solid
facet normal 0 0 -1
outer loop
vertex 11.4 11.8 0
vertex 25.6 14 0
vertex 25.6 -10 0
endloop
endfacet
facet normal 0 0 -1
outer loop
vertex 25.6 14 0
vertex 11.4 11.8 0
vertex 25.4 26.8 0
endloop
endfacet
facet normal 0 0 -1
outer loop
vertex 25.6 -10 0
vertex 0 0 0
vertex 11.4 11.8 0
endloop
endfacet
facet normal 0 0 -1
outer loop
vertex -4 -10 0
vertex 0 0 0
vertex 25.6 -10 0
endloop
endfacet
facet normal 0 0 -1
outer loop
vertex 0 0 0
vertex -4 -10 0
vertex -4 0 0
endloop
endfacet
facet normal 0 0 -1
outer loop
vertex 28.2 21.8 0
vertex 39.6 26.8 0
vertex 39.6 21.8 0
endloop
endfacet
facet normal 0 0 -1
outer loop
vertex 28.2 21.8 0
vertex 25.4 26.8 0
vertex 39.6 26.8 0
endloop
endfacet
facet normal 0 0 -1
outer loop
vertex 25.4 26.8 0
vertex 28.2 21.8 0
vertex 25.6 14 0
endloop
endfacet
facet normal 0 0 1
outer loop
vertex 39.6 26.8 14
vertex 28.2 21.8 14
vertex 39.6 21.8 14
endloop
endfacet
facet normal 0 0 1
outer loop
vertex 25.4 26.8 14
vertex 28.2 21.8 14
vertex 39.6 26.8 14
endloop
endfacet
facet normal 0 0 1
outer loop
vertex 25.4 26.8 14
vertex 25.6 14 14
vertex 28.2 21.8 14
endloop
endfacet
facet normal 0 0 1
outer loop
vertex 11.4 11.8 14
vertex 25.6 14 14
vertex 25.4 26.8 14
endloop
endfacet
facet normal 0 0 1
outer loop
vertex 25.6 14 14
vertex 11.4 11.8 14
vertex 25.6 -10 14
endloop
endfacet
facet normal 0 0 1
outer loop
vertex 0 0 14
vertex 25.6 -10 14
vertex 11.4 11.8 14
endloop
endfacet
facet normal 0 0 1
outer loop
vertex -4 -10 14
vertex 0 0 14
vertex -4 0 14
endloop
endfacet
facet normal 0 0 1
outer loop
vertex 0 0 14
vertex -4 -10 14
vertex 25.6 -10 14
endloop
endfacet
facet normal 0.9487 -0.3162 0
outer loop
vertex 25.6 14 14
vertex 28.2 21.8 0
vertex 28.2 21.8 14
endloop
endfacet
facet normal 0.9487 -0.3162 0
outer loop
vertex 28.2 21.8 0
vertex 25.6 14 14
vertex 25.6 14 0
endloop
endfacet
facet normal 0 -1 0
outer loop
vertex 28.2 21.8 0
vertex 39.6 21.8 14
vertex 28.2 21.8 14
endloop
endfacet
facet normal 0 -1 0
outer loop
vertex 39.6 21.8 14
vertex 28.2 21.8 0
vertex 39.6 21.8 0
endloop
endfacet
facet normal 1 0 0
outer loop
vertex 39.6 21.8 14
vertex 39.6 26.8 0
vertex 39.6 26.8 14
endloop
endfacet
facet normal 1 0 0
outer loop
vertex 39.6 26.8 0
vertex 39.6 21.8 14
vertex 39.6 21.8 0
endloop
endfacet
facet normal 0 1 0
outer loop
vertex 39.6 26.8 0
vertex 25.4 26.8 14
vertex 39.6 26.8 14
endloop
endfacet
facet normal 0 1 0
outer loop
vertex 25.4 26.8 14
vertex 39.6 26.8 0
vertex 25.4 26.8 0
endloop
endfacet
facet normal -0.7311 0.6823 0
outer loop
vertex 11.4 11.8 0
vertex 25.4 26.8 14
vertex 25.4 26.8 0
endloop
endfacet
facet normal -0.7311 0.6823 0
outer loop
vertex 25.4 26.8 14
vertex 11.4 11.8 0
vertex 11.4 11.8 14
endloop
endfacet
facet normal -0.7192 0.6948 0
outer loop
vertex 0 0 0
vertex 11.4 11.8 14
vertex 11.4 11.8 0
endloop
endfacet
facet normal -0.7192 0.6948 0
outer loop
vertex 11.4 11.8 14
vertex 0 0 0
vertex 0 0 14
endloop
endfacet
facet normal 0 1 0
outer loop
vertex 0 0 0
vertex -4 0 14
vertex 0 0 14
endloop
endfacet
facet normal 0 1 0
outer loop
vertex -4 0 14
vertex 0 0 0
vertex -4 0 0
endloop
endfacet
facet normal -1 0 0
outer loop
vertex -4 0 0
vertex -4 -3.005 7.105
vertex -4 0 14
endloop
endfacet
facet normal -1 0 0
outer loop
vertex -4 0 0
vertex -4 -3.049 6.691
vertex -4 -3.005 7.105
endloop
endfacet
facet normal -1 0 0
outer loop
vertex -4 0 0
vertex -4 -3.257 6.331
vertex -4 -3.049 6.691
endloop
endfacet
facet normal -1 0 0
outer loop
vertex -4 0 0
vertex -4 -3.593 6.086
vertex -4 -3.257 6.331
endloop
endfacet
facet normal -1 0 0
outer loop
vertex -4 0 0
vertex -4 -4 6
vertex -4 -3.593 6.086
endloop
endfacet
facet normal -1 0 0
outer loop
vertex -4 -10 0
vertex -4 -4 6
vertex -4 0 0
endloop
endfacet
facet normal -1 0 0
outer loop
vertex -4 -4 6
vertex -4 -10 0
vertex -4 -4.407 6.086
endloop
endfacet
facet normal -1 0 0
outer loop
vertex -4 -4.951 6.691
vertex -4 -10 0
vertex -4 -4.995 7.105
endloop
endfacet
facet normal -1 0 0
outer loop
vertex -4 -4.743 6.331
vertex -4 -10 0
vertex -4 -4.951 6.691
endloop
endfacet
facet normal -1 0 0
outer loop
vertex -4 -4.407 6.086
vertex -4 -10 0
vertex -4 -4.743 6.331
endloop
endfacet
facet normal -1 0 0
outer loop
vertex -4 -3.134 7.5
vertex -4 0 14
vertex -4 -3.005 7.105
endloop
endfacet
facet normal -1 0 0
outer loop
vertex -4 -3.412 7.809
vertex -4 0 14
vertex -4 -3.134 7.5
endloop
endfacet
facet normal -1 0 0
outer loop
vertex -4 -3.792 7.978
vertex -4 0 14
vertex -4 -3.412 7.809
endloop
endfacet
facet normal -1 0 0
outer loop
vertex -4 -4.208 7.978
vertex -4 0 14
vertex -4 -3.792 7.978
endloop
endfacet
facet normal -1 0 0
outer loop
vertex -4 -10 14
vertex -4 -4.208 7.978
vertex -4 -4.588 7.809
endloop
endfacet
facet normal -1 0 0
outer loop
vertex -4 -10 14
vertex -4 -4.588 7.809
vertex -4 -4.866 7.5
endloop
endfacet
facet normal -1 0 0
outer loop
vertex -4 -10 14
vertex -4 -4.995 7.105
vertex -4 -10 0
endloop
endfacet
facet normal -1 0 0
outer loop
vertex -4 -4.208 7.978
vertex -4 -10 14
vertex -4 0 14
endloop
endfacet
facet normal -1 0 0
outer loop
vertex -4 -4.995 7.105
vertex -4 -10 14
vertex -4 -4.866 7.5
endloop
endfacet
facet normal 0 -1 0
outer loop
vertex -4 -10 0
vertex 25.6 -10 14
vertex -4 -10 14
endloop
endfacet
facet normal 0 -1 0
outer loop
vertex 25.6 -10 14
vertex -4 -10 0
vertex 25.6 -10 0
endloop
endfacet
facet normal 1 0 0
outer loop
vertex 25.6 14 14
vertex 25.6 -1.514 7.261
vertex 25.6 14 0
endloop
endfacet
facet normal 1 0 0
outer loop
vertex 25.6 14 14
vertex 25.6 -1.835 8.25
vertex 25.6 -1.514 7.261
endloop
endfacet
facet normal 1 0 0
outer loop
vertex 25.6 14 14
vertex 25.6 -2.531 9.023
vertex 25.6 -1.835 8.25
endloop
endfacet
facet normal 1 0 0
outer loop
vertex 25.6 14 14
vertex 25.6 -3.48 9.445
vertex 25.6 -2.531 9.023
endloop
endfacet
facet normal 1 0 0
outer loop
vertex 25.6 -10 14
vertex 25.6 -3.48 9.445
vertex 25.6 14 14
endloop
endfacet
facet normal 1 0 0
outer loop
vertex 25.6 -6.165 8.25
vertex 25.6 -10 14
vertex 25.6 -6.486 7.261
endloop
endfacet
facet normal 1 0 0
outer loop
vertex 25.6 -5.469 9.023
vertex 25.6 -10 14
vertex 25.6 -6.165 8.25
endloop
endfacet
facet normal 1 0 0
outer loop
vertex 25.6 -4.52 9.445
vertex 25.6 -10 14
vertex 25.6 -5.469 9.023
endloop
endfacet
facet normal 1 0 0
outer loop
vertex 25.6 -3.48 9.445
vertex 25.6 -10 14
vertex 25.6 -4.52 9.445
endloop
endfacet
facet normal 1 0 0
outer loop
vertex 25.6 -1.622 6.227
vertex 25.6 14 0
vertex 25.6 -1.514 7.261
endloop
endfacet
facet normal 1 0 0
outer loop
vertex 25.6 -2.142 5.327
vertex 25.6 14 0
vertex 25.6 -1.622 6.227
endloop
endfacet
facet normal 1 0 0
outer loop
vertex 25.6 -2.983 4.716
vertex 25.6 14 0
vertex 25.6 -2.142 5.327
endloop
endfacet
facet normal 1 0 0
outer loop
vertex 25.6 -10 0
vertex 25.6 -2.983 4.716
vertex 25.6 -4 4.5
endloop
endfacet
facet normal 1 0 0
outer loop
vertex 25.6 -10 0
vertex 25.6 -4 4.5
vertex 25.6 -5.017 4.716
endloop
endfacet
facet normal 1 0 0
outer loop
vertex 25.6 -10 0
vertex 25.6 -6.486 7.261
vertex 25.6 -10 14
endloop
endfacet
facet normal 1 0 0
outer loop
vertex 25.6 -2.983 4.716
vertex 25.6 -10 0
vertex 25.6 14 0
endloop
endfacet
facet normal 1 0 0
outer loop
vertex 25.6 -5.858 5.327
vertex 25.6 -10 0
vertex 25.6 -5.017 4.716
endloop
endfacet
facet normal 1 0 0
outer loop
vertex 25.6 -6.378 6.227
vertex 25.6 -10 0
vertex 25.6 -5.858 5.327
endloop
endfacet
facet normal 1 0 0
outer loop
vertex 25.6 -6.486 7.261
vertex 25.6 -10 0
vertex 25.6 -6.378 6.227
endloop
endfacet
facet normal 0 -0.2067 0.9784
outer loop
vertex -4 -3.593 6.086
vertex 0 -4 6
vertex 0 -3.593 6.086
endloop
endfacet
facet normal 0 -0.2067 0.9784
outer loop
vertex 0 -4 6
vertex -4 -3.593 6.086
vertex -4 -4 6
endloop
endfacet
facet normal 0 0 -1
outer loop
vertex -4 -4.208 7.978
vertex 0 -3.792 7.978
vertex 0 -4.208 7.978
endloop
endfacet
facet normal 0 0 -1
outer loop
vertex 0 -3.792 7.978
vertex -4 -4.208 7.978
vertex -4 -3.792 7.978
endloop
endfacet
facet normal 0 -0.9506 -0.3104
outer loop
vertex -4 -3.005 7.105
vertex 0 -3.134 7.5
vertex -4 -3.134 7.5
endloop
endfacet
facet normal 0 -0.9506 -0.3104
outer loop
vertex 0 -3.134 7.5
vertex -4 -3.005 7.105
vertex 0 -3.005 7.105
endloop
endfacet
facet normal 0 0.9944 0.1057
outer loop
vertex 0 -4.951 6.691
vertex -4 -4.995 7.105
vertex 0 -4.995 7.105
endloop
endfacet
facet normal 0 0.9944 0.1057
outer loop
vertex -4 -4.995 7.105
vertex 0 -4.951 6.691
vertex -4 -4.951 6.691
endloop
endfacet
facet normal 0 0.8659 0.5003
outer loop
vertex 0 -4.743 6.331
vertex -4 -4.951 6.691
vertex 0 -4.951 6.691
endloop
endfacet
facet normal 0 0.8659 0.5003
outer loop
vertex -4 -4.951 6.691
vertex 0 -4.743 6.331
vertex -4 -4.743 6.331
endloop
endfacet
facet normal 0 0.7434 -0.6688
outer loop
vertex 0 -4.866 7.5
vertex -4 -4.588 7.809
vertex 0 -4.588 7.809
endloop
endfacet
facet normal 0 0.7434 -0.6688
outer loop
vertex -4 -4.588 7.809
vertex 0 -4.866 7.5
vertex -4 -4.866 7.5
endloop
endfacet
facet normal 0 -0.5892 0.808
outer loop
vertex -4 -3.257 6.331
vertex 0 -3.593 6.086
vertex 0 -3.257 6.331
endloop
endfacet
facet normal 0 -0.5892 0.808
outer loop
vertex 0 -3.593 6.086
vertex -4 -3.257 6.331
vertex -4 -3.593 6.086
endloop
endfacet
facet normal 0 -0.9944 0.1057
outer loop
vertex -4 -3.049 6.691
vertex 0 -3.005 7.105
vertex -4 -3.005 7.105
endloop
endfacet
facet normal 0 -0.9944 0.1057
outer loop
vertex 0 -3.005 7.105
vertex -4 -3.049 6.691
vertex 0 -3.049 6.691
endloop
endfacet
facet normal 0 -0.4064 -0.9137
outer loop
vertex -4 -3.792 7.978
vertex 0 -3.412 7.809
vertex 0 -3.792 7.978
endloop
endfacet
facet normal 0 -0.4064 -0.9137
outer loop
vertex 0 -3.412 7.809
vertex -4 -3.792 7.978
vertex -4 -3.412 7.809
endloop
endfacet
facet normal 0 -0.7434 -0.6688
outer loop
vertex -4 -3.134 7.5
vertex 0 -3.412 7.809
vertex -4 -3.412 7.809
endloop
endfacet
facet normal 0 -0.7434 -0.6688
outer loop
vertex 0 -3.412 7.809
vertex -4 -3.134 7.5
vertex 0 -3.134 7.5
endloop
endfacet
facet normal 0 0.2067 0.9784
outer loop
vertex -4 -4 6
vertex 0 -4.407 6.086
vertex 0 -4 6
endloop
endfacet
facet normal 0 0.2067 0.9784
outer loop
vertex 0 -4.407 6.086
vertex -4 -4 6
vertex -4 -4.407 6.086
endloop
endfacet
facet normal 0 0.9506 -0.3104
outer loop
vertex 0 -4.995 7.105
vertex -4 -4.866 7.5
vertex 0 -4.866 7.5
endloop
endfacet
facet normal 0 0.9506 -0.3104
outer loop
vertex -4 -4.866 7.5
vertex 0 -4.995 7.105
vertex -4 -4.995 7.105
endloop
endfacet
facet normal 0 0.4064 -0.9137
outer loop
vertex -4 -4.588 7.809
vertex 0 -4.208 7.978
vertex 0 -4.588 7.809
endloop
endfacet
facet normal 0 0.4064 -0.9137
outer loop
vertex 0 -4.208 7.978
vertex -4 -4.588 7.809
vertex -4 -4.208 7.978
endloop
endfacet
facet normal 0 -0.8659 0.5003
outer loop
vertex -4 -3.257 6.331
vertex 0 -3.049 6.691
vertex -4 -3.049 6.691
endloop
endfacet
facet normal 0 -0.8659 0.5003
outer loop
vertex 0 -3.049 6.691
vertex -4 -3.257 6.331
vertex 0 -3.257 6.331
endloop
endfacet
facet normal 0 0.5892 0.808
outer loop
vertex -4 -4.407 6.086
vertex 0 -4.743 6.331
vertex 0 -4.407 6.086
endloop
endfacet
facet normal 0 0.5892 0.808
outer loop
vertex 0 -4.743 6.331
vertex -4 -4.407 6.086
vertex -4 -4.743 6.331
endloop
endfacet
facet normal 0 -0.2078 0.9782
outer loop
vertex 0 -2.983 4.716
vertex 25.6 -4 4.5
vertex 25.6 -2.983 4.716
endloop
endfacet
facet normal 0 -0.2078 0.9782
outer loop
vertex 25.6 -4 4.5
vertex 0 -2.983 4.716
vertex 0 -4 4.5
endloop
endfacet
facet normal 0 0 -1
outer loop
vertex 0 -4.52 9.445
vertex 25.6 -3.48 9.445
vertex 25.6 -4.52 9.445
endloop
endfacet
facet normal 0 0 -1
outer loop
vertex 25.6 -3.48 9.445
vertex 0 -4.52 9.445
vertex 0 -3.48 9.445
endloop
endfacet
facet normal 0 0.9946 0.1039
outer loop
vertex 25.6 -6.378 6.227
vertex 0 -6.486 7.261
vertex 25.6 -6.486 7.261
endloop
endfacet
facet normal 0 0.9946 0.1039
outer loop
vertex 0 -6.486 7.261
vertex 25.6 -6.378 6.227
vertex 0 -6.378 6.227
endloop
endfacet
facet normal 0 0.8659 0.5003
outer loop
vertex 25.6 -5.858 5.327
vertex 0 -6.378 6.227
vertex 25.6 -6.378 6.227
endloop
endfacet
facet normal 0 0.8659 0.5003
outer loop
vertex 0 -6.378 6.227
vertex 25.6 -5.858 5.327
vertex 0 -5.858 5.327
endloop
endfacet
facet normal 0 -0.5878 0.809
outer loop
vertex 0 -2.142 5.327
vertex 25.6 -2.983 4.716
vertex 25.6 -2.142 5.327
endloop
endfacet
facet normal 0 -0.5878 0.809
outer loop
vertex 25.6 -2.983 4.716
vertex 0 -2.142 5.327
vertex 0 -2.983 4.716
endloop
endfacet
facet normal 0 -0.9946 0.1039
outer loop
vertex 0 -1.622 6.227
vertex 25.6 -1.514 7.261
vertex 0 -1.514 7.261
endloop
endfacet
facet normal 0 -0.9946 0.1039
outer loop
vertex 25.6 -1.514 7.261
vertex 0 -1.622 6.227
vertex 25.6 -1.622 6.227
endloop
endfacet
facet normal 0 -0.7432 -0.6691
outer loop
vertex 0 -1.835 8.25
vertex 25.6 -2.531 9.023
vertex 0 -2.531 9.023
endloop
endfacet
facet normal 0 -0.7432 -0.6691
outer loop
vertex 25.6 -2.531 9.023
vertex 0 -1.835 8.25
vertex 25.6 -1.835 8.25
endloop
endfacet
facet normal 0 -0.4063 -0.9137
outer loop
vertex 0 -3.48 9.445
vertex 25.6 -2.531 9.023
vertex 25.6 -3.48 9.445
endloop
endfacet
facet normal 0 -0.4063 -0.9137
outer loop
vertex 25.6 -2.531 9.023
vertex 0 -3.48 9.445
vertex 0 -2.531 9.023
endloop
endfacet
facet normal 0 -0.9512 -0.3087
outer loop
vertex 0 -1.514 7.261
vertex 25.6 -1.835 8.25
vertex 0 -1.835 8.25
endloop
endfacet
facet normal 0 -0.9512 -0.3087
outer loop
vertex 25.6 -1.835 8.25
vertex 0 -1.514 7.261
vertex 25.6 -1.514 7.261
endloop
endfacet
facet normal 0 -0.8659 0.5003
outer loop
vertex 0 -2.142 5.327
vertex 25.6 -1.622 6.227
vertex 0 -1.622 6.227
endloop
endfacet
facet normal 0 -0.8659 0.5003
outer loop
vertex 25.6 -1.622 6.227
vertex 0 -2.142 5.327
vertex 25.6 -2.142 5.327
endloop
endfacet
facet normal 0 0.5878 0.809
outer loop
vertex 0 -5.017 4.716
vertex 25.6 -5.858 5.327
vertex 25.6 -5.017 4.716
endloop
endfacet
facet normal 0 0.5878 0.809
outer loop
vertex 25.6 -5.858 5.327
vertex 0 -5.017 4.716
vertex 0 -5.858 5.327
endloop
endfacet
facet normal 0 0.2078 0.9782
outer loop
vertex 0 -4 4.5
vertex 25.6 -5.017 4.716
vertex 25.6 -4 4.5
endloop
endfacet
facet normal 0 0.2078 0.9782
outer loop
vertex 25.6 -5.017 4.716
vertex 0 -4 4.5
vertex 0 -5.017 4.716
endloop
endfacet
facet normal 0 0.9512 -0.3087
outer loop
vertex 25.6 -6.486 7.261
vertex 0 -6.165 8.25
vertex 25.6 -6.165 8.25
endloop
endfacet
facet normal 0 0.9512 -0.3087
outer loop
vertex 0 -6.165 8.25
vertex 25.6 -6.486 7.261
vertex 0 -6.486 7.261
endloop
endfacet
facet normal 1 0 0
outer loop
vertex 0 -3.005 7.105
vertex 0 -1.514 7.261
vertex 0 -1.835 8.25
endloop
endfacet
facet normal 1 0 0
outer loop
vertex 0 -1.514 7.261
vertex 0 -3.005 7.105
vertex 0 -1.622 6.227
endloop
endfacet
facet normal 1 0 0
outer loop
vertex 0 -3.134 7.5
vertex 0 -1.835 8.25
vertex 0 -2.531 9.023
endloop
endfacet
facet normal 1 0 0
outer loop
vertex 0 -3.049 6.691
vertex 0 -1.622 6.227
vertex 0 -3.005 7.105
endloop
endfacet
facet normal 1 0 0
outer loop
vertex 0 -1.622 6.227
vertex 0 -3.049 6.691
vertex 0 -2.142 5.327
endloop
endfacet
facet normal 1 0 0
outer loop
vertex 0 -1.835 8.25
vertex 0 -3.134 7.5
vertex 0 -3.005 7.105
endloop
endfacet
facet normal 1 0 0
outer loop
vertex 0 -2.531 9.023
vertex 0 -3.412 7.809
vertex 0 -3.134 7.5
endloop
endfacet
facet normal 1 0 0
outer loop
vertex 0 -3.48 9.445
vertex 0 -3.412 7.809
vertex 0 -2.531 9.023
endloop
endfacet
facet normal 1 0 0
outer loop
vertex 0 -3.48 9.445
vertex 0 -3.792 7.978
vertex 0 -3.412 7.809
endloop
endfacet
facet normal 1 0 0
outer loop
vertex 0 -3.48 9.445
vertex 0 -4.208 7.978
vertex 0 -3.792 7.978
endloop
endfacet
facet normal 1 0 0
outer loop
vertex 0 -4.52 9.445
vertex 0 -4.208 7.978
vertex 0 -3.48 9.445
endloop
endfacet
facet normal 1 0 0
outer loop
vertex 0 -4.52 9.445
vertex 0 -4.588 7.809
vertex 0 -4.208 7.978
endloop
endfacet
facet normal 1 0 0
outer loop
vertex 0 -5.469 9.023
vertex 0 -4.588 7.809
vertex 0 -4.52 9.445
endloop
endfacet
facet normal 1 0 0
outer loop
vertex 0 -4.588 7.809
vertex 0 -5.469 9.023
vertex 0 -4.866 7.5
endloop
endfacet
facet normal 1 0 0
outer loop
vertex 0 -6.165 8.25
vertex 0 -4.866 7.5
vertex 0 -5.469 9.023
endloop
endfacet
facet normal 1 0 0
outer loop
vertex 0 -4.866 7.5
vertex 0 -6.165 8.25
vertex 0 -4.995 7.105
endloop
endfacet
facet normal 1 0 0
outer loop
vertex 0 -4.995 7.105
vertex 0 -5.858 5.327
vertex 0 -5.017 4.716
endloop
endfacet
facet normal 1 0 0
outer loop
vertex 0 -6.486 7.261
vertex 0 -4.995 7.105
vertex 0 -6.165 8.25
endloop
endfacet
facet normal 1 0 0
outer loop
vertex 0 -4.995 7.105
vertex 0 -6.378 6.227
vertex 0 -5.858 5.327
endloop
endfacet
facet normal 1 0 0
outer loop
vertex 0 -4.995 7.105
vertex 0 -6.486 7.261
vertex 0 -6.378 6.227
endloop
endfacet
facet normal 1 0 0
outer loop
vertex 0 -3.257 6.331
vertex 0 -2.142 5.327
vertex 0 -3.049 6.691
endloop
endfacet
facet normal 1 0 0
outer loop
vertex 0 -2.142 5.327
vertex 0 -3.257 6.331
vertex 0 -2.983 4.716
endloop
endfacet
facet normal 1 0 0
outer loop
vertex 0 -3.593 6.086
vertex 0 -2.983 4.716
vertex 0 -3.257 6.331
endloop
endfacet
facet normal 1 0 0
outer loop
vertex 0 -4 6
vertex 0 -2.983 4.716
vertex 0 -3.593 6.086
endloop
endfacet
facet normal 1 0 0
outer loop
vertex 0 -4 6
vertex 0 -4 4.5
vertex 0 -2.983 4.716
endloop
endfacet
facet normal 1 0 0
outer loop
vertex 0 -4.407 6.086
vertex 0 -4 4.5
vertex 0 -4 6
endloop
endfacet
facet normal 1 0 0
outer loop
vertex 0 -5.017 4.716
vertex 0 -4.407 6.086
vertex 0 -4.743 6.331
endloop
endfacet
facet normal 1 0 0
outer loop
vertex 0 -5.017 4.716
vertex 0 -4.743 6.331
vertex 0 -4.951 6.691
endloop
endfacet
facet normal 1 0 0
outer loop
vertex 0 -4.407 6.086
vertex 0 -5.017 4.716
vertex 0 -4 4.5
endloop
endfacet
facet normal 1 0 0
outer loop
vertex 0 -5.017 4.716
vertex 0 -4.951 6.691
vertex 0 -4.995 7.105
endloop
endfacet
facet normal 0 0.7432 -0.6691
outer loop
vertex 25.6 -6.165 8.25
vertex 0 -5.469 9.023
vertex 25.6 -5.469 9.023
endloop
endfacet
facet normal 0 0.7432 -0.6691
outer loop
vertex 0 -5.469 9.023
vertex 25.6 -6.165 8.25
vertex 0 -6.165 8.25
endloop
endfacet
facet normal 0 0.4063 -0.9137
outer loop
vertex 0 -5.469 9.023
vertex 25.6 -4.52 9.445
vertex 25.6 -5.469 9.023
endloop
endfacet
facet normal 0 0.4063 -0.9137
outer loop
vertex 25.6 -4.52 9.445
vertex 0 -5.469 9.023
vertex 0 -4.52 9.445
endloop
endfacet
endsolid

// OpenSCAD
difference(){
linear_extrude(height=14)
polygon([[25.6,-10],[25.6,14],[28.2,21.8],[39.6,21.8],[39.6,26.8],[25.4,26.8],[11.4,11.8],[0,0],[-4,0],[-4,-10]]);
translate([-10,-4,7])rotate([0,90,0])
    cylinder(d=2,h=40,$fn=15);
translate([0,-4,7])rotate([0,90,0])
    cylinder(d=5,h=40,$fn=15);
}
